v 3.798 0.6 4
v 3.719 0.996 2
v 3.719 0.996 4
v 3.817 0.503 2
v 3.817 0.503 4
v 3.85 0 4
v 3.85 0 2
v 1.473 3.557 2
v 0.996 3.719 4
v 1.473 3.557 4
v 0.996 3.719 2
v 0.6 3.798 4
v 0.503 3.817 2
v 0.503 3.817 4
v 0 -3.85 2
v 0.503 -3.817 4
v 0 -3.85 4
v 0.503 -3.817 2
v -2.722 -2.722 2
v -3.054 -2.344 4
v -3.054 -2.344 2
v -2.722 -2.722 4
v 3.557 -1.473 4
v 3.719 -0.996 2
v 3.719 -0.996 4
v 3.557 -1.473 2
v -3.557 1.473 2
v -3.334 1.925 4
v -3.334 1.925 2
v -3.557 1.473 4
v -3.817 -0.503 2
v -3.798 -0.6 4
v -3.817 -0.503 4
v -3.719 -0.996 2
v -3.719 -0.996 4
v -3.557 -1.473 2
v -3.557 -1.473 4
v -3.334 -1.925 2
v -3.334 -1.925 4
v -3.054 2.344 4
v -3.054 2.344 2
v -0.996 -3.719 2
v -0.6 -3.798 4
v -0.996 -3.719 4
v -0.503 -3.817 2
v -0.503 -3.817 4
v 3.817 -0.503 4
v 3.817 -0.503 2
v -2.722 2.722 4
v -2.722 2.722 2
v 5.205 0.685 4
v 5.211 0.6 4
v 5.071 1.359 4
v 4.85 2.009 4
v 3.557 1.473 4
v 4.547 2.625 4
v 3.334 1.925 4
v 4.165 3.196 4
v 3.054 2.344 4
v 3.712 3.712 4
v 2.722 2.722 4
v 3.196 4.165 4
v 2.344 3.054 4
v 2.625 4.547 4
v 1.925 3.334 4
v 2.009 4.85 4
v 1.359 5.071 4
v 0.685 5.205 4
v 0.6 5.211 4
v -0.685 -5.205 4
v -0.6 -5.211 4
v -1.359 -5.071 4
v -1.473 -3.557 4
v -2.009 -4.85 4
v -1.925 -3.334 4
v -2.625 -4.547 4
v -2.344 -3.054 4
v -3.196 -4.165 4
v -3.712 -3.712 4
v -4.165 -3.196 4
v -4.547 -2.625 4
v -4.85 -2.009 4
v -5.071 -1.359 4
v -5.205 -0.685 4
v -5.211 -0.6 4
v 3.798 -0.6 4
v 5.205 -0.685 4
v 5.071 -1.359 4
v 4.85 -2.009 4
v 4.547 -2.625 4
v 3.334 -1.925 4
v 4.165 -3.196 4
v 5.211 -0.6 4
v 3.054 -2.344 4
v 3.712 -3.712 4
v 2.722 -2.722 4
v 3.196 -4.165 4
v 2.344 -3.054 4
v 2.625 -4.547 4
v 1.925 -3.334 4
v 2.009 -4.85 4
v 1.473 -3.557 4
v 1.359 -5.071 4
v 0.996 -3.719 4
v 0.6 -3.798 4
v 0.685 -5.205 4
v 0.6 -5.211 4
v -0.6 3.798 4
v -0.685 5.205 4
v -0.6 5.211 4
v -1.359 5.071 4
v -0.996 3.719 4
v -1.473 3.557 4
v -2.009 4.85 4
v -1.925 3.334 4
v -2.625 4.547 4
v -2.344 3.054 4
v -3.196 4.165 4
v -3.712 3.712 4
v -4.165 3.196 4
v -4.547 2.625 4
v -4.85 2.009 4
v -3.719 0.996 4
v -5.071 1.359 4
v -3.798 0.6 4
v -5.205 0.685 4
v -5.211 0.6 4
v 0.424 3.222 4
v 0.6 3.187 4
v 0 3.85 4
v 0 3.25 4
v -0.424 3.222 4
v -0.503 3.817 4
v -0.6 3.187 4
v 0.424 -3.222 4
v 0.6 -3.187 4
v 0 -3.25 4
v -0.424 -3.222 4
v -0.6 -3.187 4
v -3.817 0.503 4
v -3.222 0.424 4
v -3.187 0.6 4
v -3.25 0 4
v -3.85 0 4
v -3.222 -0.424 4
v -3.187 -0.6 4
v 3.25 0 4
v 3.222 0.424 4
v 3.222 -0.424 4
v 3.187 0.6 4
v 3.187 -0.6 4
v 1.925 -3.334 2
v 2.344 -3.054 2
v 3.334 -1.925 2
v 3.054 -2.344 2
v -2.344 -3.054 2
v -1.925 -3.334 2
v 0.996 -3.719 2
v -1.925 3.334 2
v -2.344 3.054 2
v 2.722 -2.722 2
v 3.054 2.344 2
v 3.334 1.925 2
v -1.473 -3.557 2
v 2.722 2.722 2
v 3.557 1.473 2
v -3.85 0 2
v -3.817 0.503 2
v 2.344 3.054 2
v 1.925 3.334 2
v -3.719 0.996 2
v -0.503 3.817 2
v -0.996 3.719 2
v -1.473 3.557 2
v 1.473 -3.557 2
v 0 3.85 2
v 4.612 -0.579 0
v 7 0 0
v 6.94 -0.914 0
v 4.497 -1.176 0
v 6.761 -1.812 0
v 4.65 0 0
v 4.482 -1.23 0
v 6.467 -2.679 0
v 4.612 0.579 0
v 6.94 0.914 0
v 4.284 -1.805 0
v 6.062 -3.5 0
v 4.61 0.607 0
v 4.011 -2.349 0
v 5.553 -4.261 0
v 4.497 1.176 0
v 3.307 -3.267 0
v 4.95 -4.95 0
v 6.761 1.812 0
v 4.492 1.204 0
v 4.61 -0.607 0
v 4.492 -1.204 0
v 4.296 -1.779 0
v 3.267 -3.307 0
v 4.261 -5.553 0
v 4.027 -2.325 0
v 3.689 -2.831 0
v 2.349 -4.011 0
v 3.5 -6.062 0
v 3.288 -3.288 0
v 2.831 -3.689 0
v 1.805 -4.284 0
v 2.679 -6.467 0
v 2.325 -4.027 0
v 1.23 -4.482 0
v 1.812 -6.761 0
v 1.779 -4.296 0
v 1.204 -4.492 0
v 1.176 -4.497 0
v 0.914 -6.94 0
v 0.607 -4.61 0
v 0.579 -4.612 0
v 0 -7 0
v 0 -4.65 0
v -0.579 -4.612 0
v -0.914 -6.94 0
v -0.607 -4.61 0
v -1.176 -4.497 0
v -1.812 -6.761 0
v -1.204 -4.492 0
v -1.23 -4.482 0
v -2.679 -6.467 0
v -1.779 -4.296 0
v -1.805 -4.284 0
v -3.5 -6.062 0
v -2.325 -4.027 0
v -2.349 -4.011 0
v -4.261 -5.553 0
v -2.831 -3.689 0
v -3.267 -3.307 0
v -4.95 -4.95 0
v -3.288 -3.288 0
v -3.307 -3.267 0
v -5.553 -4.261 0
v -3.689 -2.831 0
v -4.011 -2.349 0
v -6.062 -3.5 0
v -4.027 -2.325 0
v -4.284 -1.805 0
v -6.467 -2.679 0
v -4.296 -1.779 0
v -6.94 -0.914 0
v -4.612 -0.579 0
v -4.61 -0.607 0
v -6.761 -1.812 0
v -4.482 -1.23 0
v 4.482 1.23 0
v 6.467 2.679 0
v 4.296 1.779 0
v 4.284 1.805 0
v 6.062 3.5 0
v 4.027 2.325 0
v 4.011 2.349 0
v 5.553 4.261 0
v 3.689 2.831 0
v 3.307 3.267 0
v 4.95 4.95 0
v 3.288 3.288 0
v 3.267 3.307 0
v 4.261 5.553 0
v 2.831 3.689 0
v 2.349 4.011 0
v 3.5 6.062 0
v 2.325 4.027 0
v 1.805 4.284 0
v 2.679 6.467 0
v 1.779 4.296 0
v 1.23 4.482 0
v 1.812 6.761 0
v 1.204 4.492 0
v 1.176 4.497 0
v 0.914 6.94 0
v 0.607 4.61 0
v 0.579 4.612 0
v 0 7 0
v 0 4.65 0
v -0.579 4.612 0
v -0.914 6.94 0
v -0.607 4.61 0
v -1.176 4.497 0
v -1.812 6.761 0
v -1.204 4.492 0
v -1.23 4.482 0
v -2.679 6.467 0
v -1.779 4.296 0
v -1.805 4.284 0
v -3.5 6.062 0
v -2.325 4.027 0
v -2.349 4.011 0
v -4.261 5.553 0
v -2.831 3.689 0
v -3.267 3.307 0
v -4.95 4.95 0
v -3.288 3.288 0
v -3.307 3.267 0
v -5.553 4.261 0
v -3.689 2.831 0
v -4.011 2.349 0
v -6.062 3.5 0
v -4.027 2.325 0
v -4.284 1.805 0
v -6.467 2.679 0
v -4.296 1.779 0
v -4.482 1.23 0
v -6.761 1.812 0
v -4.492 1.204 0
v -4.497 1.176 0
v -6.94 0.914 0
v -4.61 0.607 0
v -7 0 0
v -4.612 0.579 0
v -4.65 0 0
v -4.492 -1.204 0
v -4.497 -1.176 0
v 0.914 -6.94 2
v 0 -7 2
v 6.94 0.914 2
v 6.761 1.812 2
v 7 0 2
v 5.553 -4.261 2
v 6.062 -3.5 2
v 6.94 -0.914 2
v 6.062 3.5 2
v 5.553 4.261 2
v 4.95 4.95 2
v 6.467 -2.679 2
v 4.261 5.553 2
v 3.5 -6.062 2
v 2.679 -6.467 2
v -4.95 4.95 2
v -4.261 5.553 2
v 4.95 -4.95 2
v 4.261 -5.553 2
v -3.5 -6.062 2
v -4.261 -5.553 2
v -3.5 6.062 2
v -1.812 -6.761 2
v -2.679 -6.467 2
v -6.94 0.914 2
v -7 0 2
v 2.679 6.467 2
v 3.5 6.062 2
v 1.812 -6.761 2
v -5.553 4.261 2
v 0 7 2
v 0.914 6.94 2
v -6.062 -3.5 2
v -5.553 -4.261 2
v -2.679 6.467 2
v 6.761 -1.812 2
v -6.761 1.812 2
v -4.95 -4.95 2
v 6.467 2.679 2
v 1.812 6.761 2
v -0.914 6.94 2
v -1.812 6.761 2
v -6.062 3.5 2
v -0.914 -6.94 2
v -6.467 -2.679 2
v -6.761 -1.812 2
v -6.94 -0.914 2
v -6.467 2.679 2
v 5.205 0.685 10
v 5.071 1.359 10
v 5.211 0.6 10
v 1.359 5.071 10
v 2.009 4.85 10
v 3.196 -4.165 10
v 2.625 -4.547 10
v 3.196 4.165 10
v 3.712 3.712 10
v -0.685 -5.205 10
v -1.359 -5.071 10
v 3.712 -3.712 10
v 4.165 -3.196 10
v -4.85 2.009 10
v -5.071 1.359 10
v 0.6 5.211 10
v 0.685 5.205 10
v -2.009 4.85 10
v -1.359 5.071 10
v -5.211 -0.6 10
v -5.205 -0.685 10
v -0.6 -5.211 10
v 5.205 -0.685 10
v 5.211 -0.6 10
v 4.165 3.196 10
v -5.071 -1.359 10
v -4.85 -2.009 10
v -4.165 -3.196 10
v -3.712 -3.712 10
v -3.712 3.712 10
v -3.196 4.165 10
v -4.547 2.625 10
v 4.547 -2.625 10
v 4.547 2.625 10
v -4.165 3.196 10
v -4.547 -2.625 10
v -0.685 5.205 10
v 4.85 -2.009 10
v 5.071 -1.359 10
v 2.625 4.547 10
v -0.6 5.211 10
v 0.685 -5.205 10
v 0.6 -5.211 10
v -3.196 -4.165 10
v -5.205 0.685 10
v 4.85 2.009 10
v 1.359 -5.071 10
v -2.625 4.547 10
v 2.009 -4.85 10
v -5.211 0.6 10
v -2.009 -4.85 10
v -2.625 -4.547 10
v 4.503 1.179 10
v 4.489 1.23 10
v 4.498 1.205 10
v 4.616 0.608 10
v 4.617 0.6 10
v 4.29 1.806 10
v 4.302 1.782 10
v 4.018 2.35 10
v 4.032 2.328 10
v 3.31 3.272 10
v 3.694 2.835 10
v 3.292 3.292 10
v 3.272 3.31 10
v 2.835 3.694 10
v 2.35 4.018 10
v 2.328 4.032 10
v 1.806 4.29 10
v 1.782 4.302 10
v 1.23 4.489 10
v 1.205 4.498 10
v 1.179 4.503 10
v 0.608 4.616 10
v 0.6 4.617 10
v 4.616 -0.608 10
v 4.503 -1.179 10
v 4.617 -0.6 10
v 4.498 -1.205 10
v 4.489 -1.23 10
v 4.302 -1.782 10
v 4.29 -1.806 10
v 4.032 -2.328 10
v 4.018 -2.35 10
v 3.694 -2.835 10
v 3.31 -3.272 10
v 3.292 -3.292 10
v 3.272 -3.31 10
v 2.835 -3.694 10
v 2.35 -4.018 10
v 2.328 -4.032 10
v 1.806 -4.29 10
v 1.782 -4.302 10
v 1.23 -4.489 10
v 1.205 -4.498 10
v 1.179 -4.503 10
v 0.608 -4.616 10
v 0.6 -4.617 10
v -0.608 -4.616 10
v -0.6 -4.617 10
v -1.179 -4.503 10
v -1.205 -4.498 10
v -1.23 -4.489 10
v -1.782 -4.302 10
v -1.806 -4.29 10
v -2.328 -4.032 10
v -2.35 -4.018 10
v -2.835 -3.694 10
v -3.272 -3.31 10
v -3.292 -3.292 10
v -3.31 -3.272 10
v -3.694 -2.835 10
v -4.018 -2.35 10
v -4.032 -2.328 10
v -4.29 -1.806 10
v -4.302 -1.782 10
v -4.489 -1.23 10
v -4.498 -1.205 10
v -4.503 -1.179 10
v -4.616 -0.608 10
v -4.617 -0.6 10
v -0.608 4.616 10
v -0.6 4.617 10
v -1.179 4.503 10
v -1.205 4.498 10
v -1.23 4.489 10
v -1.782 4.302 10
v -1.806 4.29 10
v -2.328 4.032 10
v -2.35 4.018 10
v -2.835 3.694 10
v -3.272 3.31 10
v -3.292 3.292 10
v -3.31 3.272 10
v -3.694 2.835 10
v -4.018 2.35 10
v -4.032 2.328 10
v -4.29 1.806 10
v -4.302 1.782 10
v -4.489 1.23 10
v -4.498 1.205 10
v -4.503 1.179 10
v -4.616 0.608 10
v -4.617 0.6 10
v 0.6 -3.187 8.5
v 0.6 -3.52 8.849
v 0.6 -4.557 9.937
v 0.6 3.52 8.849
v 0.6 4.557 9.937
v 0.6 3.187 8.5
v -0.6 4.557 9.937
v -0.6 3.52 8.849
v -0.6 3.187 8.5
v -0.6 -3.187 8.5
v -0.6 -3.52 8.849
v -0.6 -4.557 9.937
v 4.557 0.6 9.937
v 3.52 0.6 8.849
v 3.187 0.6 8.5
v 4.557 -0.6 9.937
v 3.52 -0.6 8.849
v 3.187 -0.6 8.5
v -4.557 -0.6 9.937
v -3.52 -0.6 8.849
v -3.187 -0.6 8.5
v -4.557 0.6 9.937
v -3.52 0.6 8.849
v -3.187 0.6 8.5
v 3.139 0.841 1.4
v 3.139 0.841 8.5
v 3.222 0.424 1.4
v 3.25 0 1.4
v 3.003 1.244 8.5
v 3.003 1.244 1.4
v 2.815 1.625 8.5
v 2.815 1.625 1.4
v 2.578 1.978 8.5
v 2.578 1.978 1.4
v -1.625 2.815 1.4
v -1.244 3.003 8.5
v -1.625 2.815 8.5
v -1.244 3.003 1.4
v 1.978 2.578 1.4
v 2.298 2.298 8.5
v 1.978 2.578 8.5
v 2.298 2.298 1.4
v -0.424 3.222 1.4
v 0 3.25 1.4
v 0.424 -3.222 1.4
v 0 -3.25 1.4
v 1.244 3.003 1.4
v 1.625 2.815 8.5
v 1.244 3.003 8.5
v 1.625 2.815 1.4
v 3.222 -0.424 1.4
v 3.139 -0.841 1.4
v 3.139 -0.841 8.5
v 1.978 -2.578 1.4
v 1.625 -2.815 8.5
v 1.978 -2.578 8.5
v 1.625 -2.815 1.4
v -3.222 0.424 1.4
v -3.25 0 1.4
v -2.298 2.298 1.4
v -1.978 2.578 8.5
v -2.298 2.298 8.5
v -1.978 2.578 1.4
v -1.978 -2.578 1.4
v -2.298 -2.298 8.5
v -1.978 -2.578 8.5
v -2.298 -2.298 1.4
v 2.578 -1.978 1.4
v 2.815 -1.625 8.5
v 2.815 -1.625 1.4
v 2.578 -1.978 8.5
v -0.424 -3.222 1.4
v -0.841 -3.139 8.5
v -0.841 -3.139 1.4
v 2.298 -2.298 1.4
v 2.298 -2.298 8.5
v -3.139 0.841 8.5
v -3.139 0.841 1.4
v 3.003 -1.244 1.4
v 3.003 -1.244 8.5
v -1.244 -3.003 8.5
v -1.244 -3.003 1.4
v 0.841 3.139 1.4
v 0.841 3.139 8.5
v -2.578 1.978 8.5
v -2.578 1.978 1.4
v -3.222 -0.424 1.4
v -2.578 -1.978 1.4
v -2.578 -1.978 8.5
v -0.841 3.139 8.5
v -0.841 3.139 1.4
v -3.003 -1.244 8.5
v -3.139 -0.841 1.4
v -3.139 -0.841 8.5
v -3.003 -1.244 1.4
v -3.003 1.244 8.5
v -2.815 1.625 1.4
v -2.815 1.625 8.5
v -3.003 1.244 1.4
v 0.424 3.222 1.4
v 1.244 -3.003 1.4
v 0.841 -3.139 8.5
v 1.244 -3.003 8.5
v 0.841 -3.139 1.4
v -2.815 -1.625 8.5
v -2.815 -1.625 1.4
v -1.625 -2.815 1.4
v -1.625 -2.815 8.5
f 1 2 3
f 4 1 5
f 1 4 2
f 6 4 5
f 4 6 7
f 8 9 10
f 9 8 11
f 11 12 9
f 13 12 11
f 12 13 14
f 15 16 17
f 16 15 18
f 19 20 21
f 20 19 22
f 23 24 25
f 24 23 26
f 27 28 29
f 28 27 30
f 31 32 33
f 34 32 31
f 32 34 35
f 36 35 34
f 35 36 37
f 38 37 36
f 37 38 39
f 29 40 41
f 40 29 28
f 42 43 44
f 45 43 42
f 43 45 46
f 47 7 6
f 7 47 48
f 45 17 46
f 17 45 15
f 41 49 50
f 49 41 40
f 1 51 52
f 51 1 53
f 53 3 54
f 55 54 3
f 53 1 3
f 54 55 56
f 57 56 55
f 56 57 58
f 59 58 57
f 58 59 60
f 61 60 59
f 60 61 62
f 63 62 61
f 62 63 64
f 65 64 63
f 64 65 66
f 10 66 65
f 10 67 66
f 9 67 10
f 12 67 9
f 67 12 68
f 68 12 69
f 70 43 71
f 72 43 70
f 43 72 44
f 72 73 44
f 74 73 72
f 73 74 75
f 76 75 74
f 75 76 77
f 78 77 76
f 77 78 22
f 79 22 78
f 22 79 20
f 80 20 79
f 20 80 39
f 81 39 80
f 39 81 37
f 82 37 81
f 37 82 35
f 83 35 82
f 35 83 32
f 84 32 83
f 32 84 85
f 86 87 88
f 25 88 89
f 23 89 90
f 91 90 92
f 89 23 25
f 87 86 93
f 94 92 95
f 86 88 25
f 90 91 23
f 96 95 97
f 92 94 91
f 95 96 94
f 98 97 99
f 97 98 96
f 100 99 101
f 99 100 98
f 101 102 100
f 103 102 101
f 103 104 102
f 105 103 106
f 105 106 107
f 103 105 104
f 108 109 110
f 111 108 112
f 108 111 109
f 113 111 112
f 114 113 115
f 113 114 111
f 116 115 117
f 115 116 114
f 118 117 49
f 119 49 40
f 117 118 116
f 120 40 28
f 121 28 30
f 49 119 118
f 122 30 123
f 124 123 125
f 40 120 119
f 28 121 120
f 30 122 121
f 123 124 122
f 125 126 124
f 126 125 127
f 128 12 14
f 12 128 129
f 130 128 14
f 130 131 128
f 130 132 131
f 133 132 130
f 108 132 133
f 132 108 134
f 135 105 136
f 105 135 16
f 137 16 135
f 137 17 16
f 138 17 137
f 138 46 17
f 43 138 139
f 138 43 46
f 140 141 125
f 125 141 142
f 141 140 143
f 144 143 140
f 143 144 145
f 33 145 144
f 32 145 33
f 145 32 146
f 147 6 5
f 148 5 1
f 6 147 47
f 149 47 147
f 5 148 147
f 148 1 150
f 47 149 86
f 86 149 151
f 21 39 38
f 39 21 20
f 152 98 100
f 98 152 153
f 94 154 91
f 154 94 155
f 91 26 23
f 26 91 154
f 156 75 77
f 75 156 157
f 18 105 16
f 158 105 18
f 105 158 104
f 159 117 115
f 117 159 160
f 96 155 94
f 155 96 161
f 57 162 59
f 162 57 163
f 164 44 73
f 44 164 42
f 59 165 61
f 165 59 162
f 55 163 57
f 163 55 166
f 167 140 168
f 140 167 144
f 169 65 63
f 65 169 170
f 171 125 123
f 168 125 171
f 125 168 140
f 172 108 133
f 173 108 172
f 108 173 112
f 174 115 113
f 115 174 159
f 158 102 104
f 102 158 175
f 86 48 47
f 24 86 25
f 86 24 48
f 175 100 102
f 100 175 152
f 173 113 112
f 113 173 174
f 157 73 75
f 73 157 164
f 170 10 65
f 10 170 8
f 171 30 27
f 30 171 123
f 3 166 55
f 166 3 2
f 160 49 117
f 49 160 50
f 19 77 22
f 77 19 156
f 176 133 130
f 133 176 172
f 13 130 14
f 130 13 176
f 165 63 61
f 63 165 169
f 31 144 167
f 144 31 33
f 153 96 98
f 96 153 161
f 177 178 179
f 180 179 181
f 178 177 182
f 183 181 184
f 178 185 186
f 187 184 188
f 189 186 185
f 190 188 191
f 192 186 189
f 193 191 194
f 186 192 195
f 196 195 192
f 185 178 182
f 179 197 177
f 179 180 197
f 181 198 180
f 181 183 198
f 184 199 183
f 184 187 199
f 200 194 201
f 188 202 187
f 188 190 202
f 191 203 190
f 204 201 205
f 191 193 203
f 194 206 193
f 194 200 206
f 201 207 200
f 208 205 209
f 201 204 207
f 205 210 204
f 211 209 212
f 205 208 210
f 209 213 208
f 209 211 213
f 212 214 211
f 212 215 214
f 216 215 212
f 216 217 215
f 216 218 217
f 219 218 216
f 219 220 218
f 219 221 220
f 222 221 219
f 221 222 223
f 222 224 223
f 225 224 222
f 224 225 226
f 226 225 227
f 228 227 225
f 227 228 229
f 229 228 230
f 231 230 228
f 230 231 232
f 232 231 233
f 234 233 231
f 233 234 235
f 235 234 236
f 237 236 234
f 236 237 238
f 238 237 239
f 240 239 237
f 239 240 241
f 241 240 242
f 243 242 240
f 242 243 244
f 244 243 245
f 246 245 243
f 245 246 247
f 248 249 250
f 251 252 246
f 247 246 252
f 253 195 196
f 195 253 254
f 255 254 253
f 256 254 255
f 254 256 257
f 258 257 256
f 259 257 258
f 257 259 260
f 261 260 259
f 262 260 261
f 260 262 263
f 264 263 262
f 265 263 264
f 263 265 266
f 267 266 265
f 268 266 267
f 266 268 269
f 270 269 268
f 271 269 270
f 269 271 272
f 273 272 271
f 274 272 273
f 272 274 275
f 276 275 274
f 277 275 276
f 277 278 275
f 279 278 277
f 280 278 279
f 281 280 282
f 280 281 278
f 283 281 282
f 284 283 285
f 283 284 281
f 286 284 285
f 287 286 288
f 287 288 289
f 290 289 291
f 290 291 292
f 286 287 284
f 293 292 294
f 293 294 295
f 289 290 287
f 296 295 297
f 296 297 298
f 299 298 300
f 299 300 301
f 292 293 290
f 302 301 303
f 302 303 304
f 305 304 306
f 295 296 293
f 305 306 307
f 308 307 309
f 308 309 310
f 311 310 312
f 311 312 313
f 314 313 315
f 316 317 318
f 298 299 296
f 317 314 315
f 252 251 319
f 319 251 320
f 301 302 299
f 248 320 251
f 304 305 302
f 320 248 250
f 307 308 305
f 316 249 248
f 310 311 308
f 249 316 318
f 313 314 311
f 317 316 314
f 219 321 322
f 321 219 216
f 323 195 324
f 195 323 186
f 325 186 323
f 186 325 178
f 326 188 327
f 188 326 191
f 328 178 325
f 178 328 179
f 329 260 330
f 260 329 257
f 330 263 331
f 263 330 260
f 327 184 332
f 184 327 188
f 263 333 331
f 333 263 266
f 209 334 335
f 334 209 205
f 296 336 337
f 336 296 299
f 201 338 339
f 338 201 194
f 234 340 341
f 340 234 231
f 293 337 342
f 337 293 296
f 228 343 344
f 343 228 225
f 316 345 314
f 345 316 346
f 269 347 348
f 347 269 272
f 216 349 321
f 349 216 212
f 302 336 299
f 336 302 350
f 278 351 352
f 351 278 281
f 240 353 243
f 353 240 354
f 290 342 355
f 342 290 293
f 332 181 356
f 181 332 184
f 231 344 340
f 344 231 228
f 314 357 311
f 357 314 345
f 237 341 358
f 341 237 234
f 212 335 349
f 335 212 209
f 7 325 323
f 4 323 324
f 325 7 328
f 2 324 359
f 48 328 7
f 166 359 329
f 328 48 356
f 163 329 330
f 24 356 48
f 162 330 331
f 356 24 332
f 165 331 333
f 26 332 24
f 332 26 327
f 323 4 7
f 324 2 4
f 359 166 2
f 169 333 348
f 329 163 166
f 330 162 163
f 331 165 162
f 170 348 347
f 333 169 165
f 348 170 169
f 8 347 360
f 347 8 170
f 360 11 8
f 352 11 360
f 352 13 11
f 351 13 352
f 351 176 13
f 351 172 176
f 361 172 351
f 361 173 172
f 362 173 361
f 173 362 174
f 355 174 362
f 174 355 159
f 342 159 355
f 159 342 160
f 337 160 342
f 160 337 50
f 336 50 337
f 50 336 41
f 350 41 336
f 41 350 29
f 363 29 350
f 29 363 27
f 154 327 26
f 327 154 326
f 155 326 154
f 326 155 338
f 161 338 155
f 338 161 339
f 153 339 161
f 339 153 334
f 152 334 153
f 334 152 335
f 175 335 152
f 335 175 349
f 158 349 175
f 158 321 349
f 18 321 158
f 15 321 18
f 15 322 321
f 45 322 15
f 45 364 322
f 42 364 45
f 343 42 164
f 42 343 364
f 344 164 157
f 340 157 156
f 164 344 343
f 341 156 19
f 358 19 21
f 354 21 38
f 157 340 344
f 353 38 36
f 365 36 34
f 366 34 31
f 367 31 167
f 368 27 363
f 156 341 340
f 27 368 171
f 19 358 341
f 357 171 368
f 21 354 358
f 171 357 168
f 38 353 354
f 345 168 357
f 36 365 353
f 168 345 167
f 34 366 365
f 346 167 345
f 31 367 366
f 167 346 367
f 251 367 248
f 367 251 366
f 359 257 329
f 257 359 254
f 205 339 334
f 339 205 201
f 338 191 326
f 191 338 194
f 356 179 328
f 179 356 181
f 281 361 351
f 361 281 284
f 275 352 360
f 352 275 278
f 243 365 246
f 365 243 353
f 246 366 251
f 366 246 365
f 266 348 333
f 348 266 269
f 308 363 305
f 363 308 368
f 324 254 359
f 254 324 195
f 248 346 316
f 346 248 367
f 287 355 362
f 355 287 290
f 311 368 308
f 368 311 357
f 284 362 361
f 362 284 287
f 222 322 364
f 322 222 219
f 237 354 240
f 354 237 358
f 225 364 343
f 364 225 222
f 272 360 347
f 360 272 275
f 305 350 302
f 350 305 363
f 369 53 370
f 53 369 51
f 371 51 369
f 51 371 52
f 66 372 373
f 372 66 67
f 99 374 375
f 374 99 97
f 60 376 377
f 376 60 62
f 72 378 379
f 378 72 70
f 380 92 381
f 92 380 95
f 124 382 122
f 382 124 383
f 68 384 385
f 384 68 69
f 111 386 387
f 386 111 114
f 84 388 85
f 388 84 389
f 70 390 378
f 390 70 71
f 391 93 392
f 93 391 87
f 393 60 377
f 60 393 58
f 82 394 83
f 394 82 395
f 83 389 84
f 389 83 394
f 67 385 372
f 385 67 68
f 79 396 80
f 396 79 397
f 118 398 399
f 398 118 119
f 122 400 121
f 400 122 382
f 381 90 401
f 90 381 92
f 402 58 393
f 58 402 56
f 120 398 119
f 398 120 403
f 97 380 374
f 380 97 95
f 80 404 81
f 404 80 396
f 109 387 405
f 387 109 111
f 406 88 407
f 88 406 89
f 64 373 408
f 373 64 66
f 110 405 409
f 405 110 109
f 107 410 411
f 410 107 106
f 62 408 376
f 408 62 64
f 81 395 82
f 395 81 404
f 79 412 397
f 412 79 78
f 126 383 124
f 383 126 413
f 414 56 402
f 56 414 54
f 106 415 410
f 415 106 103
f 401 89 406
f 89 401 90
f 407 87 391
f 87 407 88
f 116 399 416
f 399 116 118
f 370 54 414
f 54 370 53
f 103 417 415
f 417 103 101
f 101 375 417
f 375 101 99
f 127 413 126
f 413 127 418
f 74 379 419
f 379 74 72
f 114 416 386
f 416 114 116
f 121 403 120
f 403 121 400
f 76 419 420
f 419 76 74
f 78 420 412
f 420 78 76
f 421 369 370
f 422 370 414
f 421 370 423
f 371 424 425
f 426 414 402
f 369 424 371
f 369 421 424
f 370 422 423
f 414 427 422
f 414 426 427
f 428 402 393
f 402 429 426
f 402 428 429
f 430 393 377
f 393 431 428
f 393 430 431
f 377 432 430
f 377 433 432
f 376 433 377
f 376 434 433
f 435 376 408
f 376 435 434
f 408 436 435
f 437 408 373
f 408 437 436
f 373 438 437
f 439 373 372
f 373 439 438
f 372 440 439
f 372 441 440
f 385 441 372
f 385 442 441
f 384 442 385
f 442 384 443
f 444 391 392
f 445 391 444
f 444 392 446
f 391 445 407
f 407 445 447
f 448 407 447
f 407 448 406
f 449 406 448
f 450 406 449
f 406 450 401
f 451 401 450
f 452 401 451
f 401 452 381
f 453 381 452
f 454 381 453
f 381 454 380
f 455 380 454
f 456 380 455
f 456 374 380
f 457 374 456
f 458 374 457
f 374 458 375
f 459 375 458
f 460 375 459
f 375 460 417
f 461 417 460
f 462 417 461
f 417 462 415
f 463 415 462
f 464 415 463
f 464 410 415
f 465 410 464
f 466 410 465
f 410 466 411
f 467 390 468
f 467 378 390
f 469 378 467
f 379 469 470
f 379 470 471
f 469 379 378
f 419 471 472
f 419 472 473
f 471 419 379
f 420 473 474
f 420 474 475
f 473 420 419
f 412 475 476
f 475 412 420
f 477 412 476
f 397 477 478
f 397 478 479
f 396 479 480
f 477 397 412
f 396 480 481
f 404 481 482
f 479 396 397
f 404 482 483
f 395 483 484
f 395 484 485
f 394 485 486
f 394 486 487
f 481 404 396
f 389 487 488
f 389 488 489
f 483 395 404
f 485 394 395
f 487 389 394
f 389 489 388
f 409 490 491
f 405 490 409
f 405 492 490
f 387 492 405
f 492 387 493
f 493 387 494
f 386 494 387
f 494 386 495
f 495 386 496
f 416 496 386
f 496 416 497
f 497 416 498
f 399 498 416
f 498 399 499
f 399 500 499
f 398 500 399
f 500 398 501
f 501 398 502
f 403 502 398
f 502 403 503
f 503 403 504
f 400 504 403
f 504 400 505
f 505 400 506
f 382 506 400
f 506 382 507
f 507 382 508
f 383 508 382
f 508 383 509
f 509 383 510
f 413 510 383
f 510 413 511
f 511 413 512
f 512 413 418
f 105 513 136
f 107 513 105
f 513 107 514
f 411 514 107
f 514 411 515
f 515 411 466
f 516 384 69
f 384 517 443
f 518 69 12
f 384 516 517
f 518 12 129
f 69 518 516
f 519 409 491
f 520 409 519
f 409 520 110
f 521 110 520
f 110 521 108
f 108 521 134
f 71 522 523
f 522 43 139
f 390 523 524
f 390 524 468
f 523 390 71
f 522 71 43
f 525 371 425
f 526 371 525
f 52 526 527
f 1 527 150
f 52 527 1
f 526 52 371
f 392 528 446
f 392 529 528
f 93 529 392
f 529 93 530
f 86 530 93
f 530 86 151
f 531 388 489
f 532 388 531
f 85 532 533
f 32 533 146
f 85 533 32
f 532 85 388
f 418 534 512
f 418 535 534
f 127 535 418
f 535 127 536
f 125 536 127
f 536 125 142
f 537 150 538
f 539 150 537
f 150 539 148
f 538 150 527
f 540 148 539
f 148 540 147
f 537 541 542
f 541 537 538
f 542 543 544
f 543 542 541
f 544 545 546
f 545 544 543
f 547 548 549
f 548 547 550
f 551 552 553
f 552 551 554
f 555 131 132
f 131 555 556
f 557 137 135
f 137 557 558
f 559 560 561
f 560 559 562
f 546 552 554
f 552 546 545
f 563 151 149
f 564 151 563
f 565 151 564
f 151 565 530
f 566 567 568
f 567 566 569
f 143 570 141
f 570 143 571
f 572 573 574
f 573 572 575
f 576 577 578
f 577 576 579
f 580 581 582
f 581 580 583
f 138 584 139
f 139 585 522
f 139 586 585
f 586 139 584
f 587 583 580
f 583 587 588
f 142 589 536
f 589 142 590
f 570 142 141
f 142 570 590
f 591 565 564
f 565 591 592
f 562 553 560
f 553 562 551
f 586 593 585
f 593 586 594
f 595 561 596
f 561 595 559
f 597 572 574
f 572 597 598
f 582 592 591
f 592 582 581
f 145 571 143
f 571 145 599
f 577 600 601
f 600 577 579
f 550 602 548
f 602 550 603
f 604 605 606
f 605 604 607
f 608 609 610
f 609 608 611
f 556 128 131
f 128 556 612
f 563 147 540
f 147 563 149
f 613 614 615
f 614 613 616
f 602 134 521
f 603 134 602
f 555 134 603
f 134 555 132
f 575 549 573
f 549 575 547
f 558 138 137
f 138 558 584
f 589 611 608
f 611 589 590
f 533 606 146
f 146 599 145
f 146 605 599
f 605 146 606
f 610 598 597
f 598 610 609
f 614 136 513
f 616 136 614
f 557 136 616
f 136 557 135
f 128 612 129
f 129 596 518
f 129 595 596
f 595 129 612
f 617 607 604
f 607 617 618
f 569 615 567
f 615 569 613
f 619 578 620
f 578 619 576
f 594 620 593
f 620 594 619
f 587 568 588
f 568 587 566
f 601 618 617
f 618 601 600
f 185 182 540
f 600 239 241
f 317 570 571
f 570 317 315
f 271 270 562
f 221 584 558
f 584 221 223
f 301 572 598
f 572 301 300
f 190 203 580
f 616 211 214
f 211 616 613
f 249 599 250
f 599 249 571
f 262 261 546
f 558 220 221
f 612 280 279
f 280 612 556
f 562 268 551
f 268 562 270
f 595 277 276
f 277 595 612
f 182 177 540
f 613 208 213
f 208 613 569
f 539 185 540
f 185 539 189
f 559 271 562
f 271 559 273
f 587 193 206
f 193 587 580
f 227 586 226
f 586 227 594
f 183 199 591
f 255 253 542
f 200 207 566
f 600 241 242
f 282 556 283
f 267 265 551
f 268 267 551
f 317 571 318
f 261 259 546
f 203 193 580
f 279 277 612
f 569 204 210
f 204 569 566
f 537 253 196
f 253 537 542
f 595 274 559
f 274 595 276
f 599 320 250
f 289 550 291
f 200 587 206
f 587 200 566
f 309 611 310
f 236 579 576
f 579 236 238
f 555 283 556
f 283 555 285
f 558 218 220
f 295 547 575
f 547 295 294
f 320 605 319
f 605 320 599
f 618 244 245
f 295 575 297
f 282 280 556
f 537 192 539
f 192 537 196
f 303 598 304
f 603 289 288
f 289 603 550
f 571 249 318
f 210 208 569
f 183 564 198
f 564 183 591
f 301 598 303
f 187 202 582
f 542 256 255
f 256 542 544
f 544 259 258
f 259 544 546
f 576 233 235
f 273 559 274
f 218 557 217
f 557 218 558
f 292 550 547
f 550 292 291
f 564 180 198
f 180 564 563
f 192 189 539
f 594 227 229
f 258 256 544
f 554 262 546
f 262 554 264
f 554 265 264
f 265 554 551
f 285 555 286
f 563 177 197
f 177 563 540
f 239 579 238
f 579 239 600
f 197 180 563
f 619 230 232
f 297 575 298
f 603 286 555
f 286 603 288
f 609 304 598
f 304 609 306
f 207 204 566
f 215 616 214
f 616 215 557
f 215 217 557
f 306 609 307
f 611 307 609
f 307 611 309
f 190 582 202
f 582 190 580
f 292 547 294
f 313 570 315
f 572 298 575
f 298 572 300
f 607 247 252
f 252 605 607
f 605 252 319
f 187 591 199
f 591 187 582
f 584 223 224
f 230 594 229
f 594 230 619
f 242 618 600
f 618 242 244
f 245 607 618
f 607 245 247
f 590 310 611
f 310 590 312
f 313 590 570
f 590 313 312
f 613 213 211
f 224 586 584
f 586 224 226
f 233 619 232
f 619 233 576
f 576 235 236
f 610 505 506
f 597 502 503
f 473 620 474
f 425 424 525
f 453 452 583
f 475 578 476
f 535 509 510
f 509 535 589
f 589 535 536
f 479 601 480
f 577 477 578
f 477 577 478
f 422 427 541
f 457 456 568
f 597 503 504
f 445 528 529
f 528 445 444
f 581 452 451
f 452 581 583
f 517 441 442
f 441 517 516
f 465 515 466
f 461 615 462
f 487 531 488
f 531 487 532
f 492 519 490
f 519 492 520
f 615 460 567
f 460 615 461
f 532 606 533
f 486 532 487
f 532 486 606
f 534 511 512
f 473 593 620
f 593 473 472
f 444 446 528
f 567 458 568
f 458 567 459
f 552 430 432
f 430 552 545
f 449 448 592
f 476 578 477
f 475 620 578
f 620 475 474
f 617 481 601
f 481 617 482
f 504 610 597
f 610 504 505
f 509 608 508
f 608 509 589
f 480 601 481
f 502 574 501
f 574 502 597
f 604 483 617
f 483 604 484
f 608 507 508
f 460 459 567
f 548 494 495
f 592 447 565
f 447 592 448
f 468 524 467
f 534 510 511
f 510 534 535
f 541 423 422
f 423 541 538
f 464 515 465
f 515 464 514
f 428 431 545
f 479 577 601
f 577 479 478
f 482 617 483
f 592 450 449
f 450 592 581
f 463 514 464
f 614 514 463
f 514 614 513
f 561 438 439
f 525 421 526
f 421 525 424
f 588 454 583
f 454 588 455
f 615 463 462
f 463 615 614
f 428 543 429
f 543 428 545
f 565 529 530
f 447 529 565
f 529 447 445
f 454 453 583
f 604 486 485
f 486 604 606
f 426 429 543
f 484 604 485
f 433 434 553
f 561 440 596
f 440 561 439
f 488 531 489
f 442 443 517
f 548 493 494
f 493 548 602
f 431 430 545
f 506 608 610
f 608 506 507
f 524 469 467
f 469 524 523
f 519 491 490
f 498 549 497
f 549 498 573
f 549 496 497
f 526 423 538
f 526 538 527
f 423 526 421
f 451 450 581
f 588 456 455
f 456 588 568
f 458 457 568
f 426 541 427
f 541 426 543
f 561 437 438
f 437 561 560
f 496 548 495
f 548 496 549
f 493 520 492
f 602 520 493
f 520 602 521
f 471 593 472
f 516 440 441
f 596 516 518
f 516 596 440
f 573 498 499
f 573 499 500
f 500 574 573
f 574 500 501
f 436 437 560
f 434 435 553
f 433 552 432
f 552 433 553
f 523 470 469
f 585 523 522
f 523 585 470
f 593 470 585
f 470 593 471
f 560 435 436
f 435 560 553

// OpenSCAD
// ============================================================
//  MSE-6 — Antenna Pass-Through Grommet  (print 1-2×)
//  Press-fit plug for a Ø8mm hole in the shell.
//  Allows WiFi/BT antenna cable (typically SMA pigtail,
//  ~6mm OD) to exit the shell cleanly with strain relief.
//
//  Install: drill Ø8mm hole in convenient shell location,
//           press grommet in, route antenna cable through centre.
// ============================================================
$fn = 48;

// Shell hole
hole_d   =  8.0;
wall_t   =  4.0;

// Grommet body
body_d   = hole_d - 0.3;   // slight undersize for press fit
body_h   = wall_t;

// Flange
flange_d = hole_d + 6.0;
flange_t =  2.0;

// Cable bore (SMA pigtail ~6mm OD + 0.5mm)
cable_d  =  6.5;

// Strain relief collar (on inner side)
collar_d =  cable_d + 4.0;
collar_h =  6.0;
// Slit in collar creates flex fingers for grip
slit_w   =  1.2;

module grommet() {
    difference() {
        union() {
            // Press-fit body
            cylinder(d = body_d, h = body_h);
            // Exterior flange
            cylinder(d = flange_d, h = flange_t);
            // Interior strain-relief collar
            translate([0, 0, body_h])
                cylinder(d = collar_d, h = collar_h);
        }

        // Cable bore
        translate([0, 0, -0.1])
            cylinder(d = cable_d, h = body_h + collar_h + flange_t + 0.2);

        // 4 flex slits in collar
        for (a = [0, 90, 180, 270])
            rotate([0, 0, a])
                translate([-slit_w/2, -collar_d/2 - 0.1, body_h])
                    cube([slit_w, collar_d/2 + 0.1, collar_h]);

        // Countersink / chamfer on cable entry
        translate([0, 0, -0.1])
            cylinder(d1 = cable_d + 3, d2 = cable_d,
                     h = 1.5);
        translate([0, 0, body_h + collar_h - 1.5])
            cylinder(d1 = cable_d, d2 = cable_d + 3,
                     h = 1.6);
    }
}

grommet();
